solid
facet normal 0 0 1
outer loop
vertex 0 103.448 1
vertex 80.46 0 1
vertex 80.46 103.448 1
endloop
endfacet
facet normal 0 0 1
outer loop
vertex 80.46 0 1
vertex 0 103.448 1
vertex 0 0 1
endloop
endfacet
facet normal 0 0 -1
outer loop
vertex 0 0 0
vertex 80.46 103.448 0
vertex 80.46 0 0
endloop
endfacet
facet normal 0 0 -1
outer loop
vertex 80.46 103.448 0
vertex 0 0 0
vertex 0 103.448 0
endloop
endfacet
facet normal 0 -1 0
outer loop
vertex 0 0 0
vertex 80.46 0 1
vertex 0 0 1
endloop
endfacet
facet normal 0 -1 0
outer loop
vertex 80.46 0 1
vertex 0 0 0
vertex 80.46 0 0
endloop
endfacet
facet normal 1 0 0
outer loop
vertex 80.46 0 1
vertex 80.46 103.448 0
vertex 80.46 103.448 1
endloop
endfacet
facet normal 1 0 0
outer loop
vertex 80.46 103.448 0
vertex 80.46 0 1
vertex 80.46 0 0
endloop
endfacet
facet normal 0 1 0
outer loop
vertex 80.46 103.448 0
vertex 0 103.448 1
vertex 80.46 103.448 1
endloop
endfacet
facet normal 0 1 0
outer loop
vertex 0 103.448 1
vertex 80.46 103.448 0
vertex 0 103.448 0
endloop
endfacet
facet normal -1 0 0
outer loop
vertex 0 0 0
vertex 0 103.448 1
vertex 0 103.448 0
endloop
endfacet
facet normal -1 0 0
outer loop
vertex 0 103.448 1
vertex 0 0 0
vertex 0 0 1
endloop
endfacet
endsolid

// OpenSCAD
/*
 * PROMPT: Roof panel of the Cities-Skylines-style police station garage annex in H0
 * scale (1:87). Plain flat metal panel sized to cover the garage footprint.
 * Flat 1 mm panel, exterior face up.
 */

$fn = 32;
S = 1/87;
panel_t = 1.0;

annex_w_real = 7000;
annex_d_real = 9000;

annex_w = annex_w_real * S;
annex_d = annex_d_real * S;

module garage_roof() {
    cube([annex_w, annex_d, panel_t]);
}

garage_roof();
